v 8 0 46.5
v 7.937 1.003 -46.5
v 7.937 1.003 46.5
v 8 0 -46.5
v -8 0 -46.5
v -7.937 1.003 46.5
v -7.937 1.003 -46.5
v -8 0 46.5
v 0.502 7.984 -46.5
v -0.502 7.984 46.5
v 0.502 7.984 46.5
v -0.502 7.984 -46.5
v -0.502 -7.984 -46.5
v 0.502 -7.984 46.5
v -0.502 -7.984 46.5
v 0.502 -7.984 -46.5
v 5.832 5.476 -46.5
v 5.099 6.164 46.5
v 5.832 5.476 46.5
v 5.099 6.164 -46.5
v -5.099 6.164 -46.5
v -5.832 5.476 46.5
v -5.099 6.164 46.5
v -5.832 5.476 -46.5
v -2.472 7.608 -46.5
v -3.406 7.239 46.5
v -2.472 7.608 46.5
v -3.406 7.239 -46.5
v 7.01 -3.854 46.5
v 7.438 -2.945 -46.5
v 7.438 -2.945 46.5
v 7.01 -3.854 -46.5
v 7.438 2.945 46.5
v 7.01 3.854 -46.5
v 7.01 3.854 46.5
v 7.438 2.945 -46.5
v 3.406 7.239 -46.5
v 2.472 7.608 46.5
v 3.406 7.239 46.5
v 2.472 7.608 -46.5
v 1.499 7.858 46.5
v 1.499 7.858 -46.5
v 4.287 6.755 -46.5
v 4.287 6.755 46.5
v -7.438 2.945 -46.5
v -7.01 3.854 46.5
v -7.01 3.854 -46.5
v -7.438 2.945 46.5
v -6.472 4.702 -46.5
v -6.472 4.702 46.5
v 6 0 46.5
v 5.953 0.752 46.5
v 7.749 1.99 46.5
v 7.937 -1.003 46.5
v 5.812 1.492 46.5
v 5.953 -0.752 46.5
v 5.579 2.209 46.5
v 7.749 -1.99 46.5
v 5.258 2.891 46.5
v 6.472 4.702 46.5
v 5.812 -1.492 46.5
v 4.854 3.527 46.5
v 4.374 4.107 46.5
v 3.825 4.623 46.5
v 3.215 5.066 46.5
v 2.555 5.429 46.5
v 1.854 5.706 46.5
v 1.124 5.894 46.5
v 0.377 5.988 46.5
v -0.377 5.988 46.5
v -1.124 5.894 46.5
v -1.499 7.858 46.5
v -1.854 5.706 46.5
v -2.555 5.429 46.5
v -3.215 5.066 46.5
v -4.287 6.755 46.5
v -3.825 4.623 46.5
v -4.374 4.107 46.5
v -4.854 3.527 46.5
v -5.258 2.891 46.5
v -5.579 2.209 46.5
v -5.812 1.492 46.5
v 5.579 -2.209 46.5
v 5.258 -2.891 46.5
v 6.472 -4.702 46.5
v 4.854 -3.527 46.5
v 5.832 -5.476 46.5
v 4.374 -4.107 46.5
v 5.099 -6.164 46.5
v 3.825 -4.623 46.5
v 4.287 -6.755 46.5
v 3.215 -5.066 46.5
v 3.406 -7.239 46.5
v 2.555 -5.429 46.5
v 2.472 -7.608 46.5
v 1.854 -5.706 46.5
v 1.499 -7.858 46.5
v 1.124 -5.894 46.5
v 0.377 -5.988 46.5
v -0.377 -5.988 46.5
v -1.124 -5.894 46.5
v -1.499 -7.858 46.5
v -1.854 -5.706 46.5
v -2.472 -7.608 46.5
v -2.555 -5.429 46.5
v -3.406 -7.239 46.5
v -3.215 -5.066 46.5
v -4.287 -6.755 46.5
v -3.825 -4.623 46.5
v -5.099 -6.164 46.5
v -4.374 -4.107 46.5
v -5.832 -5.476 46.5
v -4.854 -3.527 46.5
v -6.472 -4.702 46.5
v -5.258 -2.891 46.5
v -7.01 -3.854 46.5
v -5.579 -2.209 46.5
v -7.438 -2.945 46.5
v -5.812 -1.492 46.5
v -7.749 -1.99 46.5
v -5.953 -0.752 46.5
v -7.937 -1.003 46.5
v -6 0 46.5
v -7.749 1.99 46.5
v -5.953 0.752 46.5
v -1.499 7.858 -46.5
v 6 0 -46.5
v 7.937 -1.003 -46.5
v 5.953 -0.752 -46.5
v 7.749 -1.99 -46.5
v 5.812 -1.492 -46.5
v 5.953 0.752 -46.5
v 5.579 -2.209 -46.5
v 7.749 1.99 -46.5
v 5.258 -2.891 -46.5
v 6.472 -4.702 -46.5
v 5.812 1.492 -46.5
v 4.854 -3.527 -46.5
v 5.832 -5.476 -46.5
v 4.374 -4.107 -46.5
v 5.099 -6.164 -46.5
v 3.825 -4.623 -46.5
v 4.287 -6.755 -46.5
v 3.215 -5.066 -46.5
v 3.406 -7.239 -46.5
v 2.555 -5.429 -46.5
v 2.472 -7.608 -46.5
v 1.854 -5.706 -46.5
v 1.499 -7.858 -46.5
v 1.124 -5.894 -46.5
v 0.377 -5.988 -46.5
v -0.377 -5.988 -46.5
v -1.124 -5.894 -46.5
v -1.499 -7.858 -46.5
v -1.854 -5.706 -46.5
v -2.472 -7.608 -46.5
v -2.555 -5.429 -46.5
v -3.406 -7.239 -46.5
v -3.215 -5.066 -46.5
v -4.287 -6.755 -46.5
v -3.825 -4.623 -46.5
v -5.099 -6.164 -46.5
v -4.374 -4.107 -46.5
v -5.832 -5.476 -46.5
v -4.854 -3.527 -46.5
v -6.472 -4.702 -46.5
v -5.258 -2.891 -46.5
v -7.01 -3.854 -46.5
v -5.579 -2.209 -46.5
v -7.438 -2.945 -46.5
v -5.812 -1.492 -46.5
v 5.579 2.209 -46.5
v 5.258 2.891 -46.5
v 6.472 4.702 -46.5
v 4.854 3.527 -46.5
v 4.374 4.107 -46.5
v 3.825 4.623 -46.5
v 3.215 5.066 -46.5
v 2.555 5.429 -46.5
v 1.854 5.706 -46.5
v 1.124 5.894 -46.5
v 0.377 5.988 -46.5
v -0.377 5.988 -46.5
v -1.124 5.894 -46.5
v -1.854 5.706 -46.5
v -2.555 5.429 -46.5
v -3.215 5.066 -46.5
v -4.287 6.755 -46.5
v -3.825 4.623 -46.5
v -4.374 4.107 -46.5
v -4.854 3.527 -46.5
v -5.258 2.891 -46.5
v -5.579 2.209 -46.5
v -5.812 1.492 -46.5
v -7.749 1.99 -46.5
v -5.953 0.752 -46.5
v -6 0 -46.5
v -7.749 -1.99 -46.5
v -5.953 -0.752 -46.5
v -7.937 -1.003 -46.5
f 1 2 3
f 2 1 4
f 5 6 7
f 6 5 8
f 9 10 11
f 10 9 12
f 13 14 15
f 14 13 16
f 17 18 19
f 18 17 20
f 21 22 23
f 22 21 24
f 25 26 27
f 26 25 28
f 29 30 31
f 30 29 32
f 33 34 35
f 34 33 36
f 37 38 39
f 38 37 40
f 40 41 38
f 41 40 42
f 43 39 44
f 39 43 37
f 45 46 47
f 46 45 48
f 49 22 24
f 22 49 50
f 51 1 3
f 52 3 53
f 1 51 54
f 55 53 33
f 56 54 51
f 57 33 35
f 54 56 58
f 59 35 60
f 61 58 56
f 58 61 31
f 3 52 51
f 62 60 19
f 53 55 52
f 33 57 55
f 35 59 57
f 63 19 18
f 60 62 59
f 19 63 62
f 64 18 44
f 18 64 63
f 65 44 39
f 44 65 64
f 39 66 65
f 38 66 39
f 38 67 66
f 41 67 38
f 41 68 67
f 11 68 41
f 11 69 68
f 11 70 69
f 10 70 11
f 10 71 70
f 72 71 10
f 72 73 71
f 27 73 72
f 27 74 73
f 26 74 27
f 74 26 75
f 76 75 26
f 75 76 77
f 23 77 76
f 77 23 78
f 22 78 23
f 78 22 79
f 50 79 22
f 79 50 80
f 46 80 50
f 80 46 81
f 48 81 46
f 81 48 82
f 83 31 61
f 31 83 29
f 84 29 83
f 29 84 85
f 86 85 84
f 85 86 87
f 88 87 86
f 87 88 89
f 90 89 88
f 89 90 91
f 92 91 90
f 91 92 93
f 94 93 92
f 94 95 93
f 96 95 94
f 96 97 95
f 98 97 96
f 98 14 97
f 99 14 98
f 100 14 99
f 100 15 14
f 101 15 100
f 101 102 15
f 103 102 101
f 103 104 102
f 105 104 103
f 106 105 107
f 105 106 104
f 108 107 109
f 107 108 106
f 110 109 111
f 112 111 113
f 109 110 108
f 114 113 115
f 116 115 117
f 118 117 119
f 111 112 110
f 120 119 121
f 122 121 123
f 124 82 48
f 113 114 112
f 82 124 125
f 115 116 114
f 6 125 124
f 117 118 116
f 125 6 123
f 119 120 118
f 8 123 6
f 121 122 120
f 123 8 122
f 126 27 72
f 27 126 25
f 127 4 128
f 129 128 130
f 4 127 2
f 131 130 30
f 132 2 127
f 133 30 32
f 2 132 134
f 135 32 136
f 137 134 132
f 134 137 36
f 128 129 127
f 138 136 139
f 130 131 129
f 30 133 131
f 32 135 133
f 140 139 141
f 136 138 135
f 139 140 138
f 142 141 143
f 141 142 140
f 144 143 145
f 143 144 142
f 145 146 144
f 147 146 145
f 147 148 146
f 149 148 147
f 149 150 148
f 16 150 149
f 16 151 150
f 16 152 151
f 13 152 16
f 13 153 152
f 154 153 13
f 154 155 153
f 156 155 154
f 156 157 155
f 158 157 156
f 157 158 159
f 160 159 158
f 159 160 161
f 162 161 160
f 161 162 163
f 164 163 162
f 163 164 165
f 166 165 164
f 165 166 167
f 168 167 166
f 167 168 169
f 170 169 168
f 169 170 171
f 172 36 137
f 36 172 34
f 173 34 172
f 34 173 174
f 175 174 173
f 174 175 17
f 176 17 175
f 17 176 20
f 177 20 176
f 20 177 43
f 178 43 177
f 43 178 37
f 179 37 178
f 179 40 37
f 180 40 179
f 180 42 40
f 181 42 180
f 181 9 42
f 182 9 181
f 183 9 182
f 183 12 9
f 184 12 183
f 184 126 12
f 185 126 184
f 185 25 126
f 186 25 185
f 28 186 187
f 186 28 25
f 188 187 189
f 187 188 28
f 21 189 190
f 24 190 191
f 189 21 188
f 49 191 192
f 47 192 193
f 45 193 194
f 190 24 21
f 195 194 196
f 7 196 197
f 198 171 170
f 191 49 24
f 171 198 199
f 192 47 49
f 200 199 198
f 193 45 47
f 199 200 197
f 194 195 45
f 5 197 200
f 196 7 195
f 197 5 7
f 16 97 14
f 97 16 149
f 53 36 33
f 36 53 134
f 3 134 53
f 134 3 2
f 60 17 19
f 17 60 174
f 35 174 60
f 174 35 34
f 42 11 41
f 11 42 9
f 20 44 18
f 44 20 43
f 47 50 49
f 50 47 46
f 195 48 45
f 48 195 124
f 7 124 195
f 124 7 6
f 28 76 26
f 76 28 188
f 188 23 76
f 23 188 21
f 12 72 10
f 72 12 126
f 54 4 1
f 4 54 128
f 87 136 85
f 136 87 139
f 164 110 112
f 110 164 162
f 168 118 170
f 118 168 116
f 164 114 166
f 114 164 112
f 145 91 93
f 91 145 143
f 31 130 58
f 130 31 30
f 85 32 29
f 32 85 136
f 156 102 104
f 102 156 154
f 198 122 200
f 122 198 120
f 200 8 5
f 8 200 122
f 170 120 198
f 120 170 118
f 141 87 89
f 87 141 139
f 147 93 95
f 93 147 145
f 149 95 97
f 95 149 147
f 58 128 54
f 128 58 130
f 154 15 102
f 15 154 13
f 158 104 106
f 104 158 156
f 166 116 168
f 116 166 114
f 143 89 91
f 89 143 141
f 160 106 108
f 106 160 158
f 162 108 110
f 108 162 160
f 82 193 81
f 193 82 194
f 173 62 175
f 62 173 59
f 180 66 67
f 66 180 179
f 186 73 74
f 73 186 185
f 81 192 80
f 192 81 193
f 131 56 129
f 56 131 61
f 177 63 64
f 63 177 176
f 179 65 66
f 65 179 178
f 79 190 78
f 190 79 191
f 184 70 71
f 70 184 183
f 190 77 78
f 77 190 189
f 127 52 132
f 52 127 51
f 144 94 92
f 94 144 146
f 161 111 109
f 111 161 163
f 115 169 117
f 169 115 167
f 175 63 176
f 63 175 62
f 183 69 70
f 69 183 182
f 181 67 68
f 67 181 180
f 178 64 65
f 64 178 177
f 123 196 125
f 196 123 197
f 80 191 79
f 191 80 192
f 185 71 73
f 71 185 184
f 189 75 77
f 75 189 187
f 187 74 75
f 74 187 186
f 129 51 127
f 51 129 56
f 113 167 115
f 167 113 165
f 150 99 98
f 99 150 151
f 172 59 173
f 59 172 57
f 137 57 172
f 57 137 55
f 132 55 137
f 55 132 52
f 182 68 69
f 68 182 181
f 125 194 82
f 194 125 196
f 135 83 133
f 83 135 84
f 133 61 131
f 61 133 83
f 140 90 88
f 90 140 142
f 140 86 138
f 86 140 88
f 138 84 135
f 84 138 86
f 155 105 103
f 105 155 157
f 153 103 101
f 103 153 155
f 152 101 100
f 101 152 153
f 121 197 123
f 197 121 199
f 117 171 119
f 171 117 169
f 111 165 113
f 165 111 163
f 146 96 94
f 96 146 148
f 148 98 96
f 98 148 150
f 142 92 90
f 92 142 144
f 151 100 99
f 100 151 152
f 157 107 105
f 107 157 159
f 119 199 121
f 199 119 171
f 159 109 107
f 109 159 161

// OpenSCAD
$fn = 50;


difference() {
	union() {
		translate(v = [0, 0, -46.5000000000]) {
			cylinder(h = 93, r = 8.0000000000);
		}
	}
	union() {
		translate(v = [0, 0, -100.0000000000]) {
			cylinder(h = 200, r = 6);
		}
	}
}
